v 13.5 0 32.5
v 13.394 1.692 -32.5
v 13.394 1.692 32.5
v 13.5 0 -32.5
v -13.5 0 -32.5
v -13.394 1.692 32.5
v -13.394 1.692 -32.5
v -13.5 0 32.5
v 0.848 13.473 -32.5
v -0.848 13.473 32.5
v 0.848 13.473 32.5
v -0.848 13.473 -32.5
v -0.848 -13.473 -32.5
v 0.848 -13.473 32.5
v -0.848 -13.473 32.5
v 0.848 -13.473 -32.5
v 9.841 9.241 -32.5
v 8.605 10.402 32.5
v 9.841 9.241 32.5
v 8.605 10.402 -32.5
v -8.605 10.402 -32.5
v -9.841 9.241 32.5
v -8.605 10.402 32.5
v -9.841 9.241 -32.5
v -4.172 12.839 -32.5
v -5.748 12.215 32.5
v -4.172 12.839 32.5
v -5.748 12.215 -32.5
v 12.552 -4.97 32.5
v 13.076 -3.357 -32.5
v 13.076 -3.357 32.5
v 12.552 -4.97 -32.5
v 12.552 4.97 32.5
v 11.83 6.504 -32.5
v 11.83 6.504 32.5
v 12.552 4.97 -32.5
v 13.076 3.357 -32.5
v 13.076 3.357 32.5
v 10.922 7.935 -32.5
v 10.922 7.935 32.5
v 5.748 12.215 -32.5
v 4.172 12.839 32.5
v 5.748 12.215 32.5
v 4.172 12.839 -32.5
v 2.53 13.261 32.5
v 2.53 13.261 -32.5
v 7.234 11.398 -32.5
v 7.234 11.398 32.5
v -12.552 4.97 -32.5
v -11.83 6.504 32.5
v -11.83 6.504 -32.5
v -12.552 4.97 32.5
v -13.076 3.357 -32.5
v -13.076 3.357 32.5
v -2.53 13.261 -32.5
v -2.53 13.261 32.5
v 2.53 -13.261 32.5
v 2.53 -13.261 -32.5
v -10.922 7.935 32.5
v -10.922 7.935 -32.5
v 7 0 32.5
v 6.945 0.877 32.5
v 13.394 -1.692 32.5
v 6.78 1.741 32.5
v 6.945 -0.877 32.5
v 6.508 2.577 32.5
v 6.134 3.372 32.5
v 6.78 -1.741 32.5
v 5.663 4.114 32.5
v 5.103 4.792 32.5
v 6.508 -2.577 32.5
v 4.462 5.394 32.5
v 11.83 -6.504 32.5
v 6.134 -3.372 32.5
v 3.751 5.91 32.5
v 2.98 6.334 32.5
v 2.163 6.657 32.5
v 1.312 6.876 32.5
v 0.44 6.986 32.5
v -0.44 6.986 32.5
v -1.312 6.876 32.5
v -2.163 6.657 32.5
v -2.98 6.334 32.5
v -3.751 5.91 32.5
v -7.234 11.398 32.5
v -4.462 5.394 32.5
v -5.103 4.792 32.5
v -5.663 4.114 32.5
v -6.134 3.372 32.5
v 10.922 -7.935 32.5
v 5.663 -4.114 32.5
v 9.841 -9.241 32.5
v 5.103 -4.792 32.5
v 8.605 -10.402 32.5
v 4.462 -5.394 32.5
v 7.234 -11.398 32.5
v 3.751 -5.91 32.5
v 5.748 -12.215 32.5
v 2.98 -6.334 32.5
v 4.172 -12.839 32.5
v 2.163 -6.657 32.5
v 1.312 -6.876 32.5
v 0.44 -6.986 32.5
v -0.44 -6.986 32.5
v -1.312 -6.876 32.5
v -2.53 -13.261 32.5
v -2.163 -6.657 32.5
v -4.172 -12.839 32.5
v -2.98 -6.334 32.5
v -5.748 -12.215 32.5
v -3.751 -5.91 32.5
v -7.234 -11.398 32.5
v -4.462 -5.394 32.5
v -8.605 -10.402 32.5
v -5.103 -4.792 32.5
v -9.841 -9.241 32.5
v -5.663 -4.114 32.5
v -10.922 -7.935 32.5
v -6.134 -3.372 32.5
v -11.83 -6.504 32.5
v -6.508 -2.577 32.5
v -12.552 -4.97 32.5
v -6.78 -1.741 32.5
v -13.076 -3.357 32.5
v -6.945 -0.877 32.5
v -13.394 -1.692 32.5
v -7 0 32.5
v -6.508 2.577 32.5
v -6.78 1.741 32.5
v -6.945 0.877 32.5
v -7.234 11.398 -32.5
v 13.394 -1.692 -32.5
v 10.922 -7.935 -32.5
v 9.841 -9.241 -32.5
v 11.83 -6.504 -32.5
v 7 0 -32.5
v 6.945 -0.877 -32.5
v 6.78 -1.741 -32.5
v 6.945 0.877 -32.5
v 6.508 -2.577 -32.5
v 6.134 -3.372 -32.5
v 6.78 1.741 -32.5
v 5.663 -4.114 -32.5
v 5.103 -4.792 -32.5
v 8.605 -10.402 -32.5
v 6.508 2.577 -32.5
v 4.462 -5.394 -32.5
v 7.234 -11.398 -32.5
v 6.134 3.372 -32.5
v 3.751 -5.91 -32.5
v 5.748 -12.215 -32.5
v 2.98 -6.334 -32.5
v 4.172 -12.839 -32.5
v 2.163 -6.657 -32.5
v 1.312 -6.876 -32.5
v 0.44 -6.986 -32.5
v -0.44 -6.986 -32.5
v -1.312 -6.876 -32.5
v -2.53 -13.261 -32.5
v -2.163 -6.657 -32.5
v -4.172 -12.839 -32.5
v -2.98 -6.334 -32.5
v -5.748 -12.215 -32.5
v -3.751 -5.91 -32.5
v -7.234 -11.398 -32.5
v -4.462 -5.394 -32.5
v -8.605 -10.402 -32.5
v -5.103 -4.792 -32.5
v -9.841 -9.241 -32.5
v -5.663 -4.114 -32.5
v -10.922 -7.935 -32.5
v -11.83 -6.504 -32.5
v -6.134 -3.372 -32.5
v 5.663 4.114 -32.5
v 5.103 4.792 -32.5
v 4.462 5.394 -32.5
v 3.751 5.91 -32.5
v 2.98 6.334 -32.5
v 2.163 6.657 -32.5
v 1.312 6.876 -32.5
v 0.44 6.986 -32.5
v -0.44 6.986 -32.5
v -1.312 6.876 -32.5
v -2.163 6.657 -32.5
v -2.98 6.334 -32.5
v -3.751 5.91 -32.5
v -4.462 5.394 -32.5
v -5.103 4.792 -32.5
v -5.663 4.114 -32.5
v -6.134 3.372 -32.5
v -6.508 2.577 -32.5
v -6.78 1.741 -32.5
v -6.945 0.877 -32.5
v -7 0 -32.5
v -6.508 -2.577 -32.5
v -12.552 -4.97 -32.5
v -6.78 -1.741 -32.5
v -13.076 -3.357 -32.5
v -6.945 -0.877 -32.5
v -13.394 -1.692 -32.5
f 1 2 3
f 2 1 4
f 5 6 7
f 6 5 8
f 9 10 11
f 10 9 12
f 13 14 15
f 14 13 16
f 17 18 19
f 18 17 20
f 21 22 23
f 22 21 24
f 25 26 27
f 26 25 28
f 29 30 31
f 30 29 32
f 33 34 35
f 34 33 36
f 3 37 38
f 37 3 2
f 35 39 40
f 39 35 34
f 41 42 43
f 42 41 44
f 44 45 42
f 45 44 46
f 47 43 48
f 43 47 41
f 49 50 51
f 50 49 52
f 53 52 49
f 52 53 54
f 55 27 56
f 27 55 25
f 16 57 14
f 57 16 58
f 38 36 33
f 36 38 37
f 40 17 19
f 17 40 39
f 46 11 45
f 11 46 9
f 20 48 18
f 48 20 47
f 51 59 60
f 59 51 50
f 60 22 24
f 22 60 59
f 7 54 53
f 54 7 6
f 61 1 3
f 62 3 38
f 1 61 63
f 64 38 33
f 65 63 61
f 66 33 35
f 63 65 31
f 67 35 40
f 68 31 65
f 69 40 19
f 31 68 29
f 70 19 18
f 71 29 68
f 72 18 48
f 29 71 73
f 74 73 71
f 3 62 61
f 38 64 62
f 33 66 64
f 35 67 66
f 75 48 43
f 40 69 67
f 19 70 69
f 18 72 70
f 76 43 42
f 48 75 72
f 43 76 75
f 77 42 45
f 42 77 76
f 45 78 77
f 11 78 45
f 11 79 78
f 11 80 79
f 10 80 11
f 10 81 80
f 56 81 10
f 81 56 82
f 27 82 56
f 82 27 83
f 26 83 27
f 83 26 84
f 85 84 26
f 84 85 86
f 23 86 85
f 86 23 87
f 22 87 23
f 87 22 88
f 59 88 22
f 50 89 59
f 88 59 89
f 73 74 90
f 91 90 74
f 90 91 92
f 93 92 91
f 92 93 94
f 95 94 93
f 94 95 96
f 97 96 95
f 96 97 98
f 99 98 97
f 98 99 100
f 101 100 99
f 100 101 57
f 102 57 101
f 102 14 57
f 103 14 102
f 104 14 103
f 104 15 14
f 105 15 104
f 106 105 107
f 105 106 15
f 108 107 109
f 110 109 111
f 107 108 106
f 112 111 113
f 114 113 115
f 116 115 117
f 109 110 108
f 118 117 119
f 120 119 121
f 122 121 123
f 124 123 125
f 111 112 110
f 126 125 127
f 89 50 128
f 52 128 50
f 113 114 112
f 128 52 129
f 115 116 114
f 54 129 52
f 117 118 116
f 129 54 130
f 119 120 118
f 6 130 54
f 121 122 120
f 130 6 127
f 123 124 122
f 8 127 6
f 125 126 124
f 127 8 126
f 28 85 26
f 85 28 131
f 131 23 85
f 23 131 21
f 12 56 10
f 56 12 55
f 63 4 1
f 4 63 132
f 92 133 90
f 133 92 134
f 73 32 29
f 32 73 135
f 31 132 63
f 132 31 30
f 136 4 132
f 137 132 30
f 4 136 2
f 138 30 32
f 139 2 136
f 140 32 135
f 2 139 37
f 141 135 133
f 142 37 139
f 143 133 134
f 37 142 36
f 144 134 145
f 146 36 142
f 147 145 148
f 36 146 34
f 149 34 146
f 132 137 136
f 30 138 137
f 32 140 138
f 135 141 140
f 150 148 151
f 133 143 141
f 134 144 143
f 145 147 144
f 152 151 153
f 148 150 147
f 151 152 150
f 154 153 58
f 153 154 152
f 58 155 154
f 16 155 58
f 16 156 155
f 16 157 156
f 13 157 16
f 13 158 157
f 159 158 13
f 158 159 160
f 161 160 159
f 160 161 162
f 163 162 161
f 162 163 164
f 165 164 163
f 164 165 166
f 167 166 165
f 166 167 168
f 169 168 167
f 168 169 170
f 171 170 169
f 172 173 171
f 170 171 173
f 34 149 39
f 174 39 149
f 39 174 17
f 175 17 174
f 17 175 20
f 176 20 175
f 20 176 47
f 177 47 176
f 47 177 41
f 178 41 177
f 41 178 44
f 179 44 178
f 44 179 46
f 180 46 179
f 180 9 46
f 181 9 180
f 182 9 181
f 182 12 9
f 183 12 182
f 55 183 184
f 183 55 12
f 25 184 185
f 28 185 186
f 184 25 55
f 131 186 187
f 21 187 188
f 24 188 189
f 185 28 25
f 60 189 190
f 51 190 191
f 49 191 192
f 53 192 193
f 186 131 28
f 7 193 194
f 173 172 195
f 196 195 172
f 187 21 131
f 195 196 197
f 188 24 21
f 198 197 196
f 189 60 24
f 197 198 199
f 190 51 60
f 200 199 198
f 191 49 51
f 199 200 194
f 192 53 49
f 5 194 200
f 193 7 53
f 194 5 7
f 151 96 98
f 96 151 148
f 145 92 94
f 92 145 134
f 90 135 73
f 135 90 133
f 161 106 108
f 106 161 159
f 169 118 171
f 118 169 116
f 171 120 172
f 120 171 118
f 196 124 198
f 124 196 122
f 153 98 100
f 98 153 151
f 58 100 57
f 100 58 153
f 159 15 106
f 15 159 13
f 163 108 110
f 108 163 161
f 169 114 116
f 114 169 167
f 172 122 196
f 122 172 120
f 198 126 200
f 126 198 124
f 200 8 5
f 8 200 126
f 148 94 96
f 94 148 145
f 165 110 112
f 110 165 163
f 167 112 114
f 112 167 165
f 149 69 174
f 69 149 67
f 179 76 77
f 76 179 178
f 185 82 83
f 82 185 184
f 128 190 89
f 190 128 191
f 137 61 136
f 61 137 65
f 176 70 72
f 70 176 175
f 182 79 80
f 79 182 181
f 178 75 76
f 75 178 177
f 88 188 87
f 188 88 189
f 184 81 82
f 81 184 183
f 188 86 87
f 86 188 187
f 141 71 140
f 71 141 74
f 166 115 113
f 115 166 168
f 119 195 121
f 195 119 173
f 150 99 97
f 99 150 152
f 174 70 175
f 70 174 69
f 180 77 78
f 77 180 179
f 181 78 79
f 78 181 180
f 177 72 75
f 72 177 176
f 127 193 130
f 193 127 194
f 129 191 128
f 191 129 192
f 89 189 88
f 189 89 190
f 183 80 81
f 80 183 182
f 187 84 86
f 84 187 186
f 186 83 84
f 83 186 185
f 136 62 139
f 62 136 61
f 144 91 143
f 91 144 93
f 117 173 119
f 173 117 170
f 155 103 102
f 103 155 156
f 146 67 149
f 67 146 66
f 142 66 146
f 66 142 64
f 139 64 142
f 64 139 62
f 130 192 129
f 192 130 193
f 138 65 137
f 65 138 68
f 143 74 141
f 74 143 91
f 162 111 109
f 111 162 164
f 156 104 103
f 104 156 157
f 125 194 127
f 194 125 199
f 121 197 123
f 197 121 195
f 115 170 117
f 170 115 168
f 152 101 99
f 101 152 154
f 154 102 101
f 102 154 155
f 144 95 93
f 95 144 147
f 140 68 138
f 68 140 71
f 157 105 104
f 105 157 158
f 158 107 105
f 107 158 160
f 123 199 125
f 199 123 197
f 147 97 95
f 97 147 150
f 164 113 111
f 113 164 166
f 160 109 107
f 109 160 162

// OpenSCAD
$fn = 50;


difference() {
	union() {
		translate(v = [0, 0, -32.5000000000]) {
			cylinder(h = 65, r = 13.5000000000);
		}
	}
	union() {
		translate(v = [0, 0, -100.0000000000]) {
			cylinder(h = 200, r = 7);
		}
	}
}
